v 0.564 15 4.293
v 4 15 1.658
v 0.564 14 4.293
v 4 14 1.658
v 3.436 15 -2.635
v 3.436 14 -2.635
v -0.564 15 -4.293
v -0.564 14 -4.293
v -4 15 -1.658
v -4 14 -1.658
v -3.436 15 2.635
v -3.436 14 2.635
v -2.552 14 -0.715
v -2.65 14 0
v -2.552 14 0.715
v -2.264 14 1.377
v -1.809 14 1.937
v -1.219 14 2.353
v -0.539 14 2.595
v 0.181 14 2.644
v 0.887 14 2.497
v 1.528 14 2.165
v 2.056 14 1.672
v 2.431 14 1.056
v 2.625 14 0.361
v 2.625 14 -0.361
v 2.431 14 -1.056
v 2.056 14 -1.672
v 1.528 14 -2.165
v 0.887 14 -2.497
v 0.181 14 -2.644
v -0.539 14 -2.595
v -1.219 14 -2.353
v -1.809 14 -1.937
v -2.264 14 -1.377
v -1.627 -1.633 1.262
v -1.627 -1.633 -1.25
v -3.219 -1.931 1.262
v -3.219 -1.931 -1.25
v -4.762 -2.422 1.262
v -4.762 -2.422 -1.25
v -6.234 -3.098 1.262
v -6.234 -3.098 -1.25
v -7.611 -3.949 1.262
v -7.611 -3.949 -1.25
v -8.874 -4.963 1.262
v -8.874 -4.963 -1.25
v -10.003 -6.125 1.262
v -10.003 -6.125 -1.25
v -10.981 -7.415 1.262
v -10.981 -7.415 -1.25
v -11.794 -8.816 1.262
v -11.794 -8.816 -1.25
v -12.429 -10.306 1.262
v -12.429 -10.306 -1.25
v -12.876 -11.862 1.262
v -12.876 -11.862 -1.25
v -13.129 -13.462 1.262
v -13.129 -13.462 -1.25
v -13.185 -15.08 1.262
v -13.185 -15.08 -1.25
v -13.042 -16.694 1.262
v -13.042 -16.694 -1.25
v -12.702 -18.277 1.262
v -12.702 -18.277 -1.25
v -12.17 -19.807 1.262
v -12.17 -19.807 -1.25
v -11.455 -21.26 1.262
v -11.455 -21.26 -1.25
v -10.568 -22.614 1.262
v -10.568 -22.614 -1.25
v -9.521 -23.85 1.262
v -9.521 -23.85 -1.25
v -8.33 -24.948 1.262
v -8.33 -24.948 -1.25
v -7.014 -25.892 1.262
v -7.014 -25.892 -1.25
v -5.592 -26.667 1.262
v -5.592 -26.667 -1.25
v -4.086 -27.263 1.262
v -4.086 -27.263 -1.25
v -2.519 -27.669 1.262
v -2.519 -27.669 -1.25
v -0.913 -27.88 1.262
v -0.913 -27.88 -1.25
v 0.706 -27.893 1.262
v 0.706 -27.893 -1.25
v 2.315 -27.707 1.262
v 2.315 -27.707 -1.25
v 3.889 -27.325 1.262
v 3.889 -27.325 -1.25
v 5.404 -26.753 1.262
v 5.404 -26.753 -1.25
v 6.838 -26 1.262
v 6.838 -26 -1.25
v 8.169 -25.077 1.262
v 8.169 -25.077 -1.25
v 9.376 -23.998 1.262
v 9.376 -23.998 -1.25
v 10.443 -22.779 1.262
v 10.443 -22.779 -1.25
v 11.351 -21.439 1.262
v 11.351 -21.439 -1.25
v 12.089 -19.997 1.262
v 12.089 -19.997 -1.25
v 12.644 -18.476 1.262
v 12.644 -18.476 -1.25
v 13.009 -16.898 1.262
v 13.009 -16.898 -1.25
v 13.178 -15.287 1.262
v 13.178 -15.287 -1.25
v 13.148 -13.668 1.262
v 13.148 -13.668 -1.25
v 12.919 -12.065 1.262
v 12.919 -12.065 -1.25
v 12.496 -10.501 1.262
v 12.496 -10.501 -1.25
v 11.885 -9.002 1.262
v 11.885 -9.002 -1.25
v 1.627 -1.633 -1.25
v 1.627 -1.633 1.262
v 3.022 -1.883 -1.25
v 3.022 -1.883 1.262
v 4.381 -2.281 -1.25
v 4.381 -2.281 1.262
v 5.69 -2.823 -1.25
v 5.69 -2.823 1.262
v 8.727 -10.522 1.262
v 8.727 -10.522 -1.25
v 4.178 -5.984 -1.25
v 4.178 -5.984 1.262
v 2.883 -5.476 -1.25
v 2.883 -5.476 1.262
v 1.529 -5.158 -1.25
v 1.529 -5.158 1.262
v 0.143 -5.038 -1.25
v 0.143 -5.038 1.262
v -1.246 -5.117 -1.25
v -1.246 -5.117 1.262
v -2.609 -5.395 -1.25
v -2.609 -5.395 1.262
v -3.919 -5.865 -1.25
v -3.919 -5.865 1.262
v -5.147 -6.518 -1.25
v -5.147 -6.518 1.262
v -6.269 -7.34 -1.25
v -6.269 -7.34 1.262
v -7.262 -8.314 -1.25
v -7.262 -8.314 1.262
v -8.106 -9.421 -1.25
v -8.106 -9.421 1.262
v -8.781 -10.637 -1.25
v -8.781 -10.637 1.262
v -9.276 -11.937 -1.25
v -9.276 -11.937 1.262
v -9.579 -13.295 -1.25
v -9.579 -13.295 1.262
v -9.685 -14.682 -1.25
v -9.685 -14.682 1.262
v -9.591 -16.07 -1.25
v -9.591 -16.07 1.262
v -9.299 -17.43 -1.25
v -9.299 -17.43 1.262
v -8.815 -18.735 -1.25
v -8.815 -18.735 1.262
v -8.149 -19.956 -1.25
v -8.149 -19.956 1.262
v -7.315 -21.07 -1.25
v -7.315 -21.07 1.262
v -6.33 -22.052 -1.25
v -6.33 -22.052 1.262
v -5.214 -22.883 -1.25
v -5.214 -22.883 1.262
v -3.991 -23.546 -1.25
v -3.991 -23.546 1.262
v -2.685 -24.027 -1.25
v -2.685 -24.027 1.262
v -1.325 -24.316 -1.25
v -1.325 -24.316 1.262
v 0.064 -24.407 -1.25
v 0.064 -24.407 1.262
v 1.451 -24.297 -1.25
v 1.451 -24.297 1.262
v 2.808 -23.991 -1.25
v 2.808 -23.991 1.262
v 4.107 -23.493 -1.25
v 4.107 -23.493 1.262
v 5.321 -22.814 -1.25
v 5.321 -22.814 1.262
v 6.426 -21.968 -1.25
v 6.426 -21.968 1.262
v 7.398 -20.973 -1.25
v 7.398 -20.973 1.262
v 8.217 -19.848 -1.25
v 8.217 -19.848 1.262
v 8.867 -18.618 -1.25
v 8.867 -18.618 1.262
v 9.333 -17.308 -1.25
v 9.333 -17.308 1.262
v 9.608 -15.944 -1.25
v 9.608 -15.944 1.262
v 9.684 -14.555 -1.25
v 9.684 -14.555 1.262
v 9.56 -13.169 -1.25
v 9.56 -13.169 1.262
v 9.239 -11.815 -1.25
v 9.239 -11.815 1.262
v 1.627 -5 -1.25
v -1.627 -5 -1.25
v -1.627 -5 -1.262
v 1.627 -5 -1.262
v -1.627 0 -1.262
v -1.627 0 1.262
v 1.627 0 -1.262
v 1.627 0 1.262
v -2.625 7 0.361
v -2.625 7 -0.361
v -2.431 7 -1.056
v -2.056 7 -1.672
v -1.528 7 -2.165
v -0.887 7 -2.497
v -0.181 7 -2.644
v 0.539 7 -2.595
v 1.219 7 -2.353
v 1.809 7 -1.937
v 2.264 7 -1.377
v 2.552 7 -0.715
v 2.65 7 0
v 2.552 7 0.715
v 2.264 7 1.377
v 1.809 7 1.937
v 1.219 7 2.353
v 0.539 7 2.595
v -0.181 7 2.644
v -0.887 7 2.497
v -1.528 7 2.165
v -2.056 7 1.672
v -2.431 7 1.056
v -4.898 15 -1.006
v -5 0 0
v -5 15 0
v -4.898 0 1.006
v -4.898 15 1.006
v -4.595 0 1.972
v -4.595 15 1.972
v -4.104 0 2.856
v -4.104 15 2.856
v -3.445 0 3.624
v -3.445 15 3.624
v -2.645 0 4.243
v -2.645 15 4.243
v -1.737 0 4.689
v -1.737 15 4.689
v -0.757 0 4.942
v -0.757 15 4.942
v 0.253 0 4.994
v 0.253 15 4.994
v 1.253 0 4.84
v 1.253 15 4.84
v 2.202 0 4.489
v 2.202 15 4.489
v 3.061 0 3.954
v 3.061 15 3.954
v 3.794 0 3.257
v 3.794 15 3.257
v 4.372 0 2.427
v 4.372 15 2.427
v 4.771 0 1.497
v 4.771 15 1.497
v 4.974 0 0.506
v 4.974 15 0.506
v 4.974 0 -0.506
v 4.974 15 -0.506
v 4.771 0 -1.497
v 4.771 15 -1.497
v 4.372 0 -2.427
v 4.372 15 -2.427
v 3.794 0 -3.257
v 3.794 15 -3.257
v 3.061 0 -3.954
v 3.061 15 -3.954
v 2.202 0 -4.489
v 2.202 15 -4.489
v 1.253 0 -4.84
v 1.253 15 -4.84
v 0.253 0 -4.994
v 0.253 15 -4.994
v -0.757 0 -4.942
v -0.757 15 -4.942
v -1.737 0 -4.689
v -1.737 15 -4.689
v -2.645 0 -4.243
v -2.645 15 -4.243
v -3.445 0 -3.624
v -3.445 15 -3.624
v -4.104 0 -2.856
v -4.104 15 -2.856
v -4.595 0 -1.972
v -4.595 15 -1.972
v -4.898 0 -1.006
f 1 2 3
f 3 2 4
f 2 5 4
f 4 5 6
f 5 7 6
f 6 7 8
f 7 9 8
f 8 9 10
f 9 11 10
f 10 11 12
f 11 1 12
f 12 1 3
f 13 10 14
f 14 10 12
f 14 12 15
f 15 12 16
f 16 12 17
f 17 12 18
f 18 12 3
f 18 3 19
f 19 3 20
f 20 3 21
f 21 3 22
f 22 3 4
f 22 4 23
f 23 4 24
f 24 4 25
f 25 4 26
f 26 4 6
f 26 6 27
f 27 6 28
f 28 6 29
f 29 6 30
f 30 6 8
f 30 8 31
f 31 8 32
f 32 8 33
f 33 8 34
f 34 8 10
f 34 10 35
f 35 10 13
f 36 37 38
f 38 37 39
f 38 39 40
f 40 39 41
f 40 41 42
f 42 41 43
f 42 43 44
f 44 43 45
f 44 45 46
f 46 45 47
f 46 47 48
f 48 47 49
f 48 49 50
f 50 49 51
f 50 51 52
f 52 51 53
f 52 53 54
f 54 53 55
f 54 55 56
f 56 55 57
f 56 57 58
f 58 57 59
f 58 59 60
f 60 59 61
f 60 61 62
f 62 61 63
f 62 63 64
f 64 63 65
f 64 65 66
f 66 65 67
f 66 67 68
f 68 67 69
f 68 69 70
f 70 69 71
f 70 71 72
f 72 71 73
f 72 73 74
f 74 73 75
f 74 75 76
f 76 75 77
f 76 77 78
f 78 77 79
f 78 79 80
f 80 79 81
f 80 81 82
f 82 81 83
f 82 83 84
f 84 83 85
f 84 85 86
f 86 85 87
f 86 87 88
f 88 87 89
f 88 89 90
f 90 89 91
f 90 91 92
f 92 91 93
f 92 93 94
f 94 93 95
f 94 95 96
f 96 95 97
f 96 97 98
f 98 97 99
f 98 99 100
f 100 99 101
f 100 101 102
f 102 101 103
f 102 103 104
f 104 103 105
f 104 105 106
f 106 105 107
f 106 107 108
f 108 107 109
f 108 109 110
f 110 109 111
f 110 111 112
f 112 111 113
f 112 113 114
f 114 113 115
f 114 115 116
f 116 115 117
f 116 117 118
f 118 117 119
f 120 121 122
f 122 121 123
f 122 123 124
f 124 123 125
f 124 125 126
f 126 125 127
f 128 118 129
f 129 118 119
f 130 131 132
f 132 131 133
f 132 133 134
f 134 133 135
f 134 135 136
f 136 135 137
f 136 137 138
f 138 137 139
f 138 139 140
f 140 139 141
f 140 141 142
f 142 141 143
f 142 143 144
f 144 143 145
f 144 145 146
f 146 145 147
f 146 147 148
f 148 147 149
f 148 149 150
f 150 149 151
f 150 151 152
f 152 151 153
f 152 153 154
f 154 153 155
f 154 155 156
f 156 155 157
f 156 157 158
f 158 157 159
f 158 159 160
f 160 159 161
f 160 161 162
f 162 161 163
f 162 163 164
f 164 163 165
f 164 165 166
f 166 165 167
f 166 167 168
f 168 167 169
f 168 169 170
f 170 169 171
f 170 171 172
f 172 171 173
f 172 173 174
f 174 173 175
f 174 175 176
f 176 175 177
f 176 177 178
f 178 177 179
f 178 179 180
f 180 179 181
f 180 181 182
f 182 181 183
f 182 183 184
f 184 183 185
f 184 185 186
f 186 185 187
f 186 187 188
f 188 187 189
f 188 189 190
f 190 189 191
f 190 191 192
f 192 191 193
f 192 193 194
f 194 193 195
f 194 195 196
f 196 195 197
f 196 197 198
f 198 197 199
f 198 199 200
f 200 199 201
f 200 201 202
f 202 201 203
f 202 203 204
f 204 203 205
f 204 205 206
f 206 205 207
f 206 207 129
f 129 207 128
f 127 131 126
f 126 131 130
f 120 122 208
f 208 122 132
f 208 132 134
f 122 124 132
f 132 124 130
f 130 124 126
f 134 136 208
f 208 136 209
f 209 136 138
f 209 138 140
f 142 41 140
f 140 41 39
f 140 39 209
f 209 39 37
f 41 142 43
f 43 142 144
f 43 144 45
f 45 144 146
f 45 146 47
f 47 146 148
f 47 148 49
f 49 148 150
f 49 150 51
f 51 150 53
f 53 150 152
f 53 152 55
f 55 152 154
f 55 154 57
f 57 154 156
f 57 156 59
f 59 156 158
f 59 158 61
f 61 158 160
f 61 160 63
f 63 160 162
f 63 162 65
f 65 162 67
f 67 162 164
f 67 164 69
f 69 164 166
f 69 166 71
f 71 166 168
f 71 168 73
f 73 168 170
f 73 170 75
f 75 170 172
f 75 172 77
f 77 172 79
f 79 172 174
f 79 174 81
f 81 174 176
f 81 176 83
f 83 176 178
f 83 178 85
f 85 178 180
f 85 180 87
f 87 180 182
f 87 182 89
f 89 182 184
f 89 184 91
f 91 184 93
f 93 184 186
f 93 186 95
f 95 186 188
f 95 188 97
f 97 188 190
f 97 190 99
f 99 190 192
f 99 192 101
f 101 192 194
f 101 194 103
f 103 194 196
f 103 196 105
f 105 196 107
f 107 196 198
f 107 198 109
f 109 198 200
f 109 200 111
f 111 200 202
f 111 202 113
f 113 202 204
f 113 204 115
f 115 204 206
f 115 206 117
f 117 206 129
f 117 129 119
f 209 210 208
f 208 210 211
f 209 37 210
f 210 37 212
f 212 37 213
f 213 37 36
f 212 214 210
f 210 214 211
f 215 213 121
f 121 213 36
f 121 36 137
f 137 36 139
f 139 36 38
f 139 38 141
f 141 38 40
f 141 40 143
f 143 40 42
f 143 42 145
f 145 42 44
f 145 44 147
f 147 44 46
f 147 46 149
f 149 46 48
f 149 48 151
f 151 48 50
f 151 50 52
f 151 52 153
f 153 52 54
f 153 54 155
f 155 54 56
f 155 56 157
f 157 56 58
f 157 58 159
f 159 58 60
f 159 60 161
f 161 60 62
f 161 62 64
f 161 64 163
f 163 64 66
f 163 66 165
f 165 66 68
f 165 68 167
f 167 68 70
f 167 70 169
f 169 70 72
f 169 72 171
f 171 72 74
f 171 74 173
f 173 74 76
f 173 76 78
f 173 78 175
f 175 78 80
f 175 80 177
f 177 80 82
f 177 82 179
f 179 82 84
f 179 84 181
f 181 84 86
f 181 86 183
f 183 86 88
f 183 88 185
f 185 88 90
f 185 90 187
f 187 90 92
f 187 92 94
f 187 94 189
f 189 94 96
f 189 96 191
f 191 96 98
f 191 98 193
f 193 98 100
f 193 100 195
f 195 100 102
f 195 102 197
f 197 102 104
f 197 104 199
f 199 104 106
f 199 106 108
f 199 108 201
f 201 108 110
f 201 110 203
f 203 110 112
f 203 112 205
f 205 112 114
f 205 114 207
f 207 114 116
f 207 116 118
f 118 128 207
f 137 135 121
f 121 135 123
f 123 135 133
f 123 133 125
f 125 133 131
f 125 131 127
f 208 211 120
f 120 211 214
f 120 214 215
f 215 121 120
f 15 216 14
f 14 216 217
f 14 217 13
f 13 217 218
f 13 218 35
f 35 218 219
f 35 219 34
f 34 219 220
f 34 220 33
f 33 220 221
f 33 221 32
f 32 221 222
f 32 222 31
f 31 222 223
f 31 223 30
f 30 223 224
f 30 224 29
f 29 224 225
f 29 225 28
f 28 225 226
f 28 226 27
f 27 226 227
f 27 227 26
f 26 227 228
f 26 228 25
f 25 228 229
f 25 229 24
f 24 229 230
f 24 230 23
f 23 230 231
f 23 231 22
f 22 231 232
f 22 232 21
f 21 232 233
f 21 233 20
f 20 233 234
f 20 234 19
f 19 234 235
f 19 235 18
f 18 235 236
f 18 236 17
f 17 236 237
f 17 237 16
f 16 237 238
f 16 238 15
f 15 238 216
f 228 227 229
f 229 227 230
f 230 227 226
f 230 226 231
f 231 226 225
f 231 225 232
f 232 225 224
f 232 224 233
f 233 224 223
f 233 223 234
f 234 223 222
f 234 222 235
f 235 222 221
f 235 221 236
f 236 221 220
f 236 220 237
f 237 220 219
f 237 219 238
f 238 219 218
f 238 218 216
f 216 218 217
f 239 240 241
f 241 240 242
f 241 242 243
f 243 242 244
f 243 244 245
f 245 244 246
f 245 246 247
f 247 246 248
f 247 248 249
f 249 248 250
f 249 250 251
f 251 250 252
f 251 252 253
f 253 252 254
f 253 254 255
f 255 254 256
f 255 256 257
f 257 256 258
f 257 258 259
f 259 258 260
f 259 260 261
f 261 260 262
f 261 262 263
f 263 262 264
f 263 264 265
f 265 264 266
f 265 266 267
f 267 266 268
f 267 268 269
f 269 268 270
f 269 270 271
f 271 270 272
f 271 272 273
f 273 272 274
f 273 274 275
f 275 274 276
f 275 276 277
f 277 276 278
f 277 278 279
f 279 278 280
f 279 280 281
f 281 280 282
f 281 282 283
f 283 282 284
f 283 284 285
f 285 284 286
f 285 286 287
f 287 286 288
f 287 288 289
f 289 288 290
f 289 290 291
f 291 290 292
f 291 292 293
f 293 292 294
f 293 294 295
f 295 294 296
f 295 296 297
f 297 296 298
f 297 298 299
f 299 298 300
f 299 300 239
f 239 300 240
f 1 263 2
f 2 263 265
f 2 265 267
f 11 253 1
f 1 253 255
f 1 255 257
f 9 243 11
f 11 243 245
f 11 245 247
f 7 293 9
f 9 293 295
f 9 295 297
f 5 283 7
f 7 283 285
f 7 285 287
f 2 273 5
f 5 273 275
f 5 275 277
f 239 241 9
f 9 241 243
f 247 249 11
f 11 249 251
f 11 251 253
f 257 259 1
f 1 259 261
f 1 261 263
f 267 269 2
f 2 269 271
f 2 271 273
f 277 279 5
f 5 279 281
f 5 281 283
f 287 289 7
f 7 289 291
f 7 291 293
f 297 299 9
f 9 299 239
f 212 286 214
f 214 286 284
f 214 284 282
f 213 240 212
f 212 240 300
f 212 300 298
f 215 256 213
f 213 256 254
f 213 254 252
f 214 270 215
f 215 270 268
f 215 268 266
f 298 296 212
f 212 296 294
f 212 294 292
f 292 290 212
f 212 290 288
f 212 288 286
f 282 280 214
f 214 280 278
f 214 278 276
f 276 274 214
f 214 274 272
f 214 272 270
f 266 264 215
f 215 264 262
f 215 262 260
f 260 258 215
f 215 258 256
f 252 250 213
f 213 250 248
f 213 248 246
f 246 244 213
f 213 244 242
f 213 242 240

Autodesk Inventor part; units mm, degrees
ref_plane "YZ Plane" through (0, 0, 0) normal (1, 0, 0) x (0, 1, 0)
ref_plane "XZ Plane" through (0, 0, 0) normal (0, 1, 0) x (-1, 0, 0)
ref_plane "XY Plane" through (0, 0, 0) normal (0, 0, 1) x (1, 0, 0)
sketch "Sketch1" plane through (0, 0, 0) normal (0, 1, 0) x (-1, 0, 0)
  circle A0 centre (0, 0) radius 5
  dimension "d0" = 10
extrude "Extrusion1" add sketch "Sketch1" along normal blind 15
sketch "Sketch2" plane through (0, 15, 0) normal (0, 1, 0) x (1, 0, 0)
  circle A0 centre (0, 0) radius 2.65
  dimension "d3" = 5.3
extrude "Extrusion2" cut sketch "Sketch2" against normal blind 8
sketch "Sketch3" plane through (0, 0, 0) normal (0, -1, 0) x (1, 0, 0)
  line L0 (-1.6271, -1.2616) -> (1.6271, -1.2616)
  line L1 (1.6271, -1.2616) -> (1.6271, 1.2616)
  line L2 (1.6271, 1.2616) -> (-1.6271, 1.2616)
  line L3 (-1.6271, 1.2616) -> (-1.6271, -1.2616)
  circle A0 centre (0, 0) radius 5 projected
  line L4 (-1.6271, -1.2616) -> (1.6271, 1.2616) construction
  line L5 (1.6271, -1.2616) -> (-1.6271, 1.2616) construction
extrude "Extrusion3" add sketch "Sketch3" along normal blind 5 contours L3 L2 L1 L0
sketch "Sketch4" plane through (-1.6271, 0, 1.2616) normal (0, 0, 1) x (1, 0, 0)
  circle A0 centre (1.6271, -14.7217) radius 13.1898
  arc A1 (5.8054, -5.9844) -> (10.354, -10.5216) centre (1.6271, -14.7217) ccw
  line L0 (1.6271, -14.7217) -> (13.5121, -9.0018)
  line L1 (1.6271, -14.7217) -> (7.5696, -2.2953)
  point P0 (1.6271, 0)
  point P1 (13.8416, -19.6992)
  point P2 (11.3121, -5.7679)
  point P3 (10.354, -10.5216)
  point P4 (7.3175, -2.8225)
extrude "Extrusion4" add sketch "Sketch4" against normal blind 2.512 contours A0 L1 A1 L0
sketch "Sketch5" plane through (0, 15, 0) normal (0, 1, 0) x (1, 0, 0)
  line L0 (-4, 1.6583) -> (-0.5639, 4.2933)
  line L1 (-0.5639, 4.2933) -> (3.4361, 2.6349)
  line L2 (3.4361, 2.6349) -> (4, -1.6583)
  line L3 (4, -1.6583) -> (0.5639, -4.2933)
  line L4 (0.5639, -4.2933) -> (-3.4361, -2.6349)
  line L5 (-3.4361, -2.6349) -> (-4, 1.6583)
  point P0 (0, 0)
  point P1 (0, 0)
  point P2 (-1.4361, -3.4641)
  dimension "d10" = 8
  dimension "d11" = 7.5
extrude "Extrusion5" cut sketch "Sketch5" against normal blind 1
properties part number "OriginNutipt" material "Thermoplastic Resin"
